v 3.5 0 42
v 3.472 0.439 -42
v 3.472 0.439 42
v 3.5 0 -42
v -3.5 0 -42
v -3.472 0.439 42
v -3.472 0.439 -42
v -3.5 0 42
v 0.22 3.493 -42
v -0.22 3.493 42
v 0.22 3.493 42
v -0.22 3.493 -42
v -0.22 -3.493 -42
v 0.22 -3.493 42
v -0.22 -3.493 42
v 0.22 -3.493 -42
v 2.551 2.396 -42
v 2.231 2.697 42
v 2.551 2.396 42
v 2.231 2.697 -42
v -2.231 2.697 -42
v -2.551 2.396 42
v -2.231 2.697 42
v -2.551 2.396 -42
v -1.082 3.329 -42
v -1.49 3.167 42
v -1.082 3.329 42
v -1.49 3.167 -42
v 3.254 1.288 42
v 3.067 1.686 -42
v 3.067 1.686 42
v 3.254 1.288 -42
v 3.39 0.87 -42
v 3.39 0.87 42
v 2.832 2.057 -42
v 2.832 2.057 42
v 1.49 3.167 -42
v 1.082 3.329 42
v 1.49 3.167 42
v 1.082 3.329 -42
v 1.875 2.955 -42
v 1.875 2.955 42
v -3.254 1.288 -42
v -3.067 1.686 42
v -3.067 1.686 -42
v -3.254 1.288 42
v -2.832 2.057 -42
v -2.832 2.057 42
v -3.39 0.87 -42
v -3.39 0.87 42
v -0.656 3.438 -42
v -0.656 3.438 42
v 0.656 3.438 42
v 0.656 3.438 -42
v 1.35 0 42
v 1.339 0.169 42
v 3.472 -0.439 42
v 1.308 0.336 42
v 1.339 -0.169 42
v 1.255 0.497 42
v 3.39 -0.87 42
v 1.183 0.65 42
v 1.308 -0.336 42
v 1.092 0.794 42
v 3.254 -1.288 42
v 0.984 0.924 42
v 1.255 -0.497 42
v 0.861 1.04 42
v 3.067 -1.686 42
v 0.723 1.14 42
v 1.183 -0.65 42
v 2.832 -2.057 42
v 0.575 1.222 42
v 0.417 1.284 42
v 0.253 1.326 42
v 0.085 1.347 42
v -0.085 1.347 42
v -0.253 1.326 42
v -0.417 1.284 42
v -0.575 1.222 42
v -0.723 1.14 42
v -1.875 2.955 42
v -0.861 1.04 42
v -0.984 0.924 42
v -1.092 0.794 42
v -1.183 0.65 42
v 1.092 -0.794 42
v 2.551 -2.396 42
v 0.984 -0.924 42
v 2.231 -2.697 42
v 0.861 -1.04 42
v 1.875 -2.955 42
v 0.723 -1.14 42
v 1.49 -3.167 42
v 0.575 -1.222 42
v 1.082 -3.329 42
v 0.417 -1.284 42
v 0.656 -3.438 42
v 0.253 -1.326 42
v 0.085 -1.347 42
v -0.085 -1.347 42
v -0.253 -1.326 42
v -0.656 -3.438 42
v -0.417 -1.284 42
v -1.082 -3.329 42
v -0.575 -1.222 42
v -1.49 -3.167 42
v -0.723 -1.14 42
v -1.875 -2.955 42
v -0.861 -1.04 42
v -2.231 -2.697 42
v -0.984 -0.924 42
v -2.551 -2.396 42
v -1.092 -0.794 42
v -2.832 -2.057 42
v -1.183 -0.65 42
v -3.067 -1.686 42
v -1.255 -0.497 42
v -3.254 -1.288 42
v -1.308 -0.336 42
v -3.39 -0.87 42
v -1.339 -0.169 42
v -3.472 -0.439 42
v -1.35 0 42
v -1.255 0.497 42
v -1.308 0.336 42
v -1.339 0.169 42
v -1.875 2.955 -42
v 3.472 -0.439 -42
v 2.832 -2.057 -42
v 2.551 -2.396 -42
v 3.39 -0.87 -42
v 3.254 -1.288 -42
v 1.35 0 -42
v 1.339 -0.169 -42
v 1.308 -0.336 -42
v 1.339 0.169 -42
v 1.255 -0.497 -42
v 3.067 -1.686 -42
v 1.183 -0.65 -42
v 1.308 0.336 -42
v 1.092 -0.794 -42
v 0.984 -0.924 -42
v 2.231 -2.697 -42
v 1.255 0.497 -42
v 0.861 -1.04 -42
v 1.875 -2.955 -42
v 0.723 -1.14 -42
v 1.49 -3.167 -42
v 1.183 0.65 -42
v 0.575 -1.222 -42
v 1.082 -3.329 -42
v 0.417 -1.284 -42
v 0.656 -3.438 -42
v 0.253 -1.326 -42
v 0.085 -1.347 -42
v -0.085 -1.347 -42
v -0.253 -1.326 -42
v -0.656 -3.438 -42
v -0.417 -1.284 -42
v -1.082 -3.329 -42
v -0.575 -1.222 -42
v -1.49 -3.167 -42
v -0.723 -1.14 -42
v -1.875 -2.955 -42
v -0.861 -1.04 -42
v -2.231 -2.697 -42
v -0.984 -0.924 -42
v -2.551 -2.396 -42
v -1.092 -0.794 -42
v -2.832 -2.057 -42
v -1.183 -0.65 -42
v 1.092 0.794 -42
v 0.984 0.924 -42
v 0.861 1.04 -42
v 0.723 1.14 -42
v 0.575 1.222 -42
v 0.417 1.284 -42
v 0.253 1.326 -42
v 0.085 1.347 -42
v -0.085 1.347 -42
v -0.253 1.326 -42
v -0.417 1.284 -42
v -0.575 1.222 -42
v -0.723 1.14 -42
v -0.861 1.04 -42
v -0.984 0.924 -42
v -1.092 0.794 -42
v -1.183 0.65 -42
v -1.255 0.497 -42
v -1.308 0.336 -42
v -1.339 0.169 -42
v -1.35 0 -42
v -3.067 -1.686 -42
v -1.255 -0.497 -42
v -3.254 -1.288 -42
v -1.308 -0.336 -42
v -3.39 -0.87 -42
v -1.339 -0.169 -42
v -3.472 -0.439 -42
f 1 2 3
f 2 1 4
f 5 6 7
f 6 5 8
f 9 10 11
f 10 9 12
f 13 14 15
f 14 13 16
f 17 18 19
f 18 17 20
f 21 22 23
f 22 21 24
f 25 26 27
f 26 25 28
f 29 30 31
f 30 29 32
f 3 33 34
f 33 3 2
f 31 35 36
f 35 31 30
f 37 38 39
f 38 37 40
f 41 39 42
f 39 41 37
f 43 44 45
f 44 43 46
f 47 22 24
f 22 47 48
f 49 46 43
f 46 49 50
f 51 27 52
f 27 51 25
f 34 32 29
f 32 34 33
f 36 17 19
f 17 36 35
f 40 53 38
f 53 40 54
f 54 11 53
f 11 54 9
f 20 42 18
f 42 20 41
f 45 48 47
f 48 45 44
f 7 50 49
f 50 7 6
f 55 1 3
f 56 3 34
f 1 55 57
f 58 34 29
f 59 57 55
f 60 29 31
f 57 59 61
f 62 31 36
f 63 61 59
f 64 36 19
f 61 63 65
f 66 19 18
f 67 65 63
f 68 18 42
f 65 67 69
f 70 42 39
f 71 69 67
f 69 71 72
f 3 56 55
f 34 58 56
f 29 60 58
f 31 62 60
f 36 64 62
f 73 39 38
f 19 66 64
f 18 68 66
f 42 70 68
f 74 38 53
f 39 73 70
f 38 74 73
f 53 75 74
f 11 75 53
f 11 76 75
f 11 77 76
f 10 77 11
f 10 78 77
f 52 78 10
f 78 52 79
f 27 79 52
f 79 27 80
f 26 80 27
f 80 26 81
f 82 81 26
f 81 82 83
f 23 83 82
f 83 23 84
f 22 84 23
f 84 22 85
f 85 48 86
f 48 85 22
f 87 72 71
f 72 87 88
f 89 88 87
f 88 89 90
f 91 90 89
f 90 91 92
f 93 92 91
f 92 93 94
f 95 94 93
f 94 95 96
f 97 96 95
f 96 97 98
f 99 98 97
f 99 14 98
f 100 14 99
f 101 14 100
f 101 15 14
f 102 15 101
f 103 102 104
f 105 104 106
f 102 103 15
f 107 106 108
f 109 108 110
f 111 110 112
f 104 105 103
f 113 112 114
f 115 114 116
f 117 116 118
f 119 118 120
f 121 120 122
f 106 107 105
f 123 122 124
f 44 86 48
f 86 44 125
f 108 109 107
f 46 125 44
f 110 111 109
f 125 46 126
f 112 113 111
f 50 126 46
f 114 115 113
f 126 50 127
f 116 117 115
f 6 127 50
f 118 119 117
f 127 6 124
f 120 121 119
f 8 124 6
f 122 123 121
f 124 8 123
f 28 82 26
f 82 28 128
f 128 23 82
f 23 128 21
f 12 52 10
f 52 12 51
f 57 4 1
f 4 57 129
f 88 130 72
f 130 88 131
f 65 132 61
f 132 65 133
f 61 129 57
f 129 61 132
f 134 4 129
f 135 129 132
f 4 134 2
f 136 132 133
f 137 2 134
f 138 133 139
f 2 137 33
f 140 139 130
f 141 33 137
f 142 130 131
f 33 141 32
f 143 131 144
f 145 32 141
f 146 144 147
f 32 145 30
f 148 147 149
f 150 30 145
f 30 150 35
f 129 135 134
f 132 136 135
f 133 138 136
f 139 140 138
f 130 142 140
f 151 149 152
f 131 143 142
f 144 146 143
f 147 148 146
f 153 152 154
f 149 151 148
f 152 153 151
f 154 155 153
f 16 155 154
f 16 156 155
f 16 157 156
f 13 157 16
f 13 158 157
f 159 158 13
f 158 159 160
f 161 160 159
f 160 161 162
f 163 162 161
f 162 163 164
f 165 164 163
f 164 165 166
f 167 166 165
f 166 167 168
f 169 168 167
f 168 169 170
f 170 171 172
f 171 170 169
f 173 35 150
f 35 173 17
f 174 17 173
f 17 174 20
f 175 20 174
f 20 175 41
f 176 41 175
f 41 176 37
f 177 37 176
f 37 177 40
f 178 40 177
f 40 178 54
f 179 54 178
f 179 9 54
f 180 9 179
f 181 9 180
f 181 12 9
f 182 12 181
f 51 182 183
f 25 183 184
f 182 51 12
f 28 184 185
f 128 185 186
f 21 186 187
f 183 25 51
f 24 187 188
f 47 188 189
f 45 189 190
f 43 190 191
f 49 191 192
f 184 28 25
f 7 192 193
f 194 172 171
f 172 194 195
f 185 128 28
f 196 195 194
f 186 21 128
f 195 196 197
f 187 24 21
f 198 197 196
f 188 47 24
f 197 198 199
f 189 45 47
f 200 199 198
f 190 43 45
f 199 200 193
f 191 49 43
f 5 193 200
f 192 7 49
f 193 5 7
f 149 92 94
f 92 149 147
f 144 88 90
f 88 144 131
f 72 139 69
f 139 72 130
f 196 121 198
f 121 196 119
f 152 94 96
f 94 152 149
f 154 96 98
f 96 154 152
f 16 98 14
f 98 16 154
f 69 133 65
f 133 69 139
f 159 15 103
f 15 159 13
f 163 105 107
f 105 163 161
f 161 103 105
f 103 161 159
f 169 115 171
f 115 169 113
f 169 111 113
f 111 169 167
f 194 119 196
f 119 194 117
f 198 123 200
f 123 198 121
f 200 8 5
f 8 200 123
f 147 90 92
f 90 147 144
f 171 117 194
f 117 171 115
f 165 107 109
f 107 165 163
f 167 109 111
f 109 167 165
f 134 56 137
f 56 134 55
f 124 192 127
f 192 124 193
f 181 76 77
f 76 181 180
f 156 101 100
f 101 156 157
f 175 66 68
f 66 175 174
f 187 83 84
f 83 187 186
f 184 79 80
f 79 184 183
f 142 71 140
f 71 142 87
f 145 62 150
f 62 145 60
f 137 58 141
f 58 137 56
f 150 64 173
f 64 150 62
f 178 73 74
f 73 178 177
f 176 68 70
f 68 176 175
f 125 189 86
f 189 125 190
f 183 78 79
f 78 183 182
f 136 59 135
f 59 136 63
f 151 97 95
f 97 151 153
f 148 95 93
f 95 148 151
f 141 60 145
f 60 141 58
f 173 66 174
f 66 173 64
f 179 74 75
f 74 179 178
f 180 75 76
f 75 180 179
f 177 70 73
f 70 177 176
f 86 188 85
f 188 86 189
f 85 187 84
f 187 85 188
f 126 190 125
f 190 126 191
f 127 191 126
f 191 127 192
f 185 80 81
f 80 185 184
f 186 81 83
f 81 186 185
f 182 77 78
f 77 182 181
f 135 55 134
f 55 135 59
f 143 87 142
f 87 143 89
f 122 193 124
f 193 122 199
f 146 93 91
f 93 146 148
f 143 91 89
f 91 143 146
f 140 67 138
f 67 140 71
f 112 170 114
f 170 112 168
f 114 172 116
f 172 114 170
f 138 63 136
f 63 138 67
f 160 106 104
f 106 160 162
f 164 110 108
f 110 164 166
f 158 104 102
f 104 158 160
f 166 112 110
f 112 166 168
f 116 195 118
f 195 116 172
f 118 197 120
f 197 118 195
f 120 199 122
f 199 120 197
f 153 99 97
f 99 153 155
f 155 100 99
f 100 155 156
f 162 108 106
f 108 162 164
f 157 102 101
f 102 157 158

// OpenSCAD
$fn = 50;


difference() {
	union() {
		translate(v = [0, 0, -42.0000000000]) {
			cylinder(h = 84, r = 3.5000000000);
		}
	}
	union() {
		translate(v = [0, 0, -100.0000000000]) {
			cylinder(h = 200, r = 1.3500000000);
		}
	}
}
